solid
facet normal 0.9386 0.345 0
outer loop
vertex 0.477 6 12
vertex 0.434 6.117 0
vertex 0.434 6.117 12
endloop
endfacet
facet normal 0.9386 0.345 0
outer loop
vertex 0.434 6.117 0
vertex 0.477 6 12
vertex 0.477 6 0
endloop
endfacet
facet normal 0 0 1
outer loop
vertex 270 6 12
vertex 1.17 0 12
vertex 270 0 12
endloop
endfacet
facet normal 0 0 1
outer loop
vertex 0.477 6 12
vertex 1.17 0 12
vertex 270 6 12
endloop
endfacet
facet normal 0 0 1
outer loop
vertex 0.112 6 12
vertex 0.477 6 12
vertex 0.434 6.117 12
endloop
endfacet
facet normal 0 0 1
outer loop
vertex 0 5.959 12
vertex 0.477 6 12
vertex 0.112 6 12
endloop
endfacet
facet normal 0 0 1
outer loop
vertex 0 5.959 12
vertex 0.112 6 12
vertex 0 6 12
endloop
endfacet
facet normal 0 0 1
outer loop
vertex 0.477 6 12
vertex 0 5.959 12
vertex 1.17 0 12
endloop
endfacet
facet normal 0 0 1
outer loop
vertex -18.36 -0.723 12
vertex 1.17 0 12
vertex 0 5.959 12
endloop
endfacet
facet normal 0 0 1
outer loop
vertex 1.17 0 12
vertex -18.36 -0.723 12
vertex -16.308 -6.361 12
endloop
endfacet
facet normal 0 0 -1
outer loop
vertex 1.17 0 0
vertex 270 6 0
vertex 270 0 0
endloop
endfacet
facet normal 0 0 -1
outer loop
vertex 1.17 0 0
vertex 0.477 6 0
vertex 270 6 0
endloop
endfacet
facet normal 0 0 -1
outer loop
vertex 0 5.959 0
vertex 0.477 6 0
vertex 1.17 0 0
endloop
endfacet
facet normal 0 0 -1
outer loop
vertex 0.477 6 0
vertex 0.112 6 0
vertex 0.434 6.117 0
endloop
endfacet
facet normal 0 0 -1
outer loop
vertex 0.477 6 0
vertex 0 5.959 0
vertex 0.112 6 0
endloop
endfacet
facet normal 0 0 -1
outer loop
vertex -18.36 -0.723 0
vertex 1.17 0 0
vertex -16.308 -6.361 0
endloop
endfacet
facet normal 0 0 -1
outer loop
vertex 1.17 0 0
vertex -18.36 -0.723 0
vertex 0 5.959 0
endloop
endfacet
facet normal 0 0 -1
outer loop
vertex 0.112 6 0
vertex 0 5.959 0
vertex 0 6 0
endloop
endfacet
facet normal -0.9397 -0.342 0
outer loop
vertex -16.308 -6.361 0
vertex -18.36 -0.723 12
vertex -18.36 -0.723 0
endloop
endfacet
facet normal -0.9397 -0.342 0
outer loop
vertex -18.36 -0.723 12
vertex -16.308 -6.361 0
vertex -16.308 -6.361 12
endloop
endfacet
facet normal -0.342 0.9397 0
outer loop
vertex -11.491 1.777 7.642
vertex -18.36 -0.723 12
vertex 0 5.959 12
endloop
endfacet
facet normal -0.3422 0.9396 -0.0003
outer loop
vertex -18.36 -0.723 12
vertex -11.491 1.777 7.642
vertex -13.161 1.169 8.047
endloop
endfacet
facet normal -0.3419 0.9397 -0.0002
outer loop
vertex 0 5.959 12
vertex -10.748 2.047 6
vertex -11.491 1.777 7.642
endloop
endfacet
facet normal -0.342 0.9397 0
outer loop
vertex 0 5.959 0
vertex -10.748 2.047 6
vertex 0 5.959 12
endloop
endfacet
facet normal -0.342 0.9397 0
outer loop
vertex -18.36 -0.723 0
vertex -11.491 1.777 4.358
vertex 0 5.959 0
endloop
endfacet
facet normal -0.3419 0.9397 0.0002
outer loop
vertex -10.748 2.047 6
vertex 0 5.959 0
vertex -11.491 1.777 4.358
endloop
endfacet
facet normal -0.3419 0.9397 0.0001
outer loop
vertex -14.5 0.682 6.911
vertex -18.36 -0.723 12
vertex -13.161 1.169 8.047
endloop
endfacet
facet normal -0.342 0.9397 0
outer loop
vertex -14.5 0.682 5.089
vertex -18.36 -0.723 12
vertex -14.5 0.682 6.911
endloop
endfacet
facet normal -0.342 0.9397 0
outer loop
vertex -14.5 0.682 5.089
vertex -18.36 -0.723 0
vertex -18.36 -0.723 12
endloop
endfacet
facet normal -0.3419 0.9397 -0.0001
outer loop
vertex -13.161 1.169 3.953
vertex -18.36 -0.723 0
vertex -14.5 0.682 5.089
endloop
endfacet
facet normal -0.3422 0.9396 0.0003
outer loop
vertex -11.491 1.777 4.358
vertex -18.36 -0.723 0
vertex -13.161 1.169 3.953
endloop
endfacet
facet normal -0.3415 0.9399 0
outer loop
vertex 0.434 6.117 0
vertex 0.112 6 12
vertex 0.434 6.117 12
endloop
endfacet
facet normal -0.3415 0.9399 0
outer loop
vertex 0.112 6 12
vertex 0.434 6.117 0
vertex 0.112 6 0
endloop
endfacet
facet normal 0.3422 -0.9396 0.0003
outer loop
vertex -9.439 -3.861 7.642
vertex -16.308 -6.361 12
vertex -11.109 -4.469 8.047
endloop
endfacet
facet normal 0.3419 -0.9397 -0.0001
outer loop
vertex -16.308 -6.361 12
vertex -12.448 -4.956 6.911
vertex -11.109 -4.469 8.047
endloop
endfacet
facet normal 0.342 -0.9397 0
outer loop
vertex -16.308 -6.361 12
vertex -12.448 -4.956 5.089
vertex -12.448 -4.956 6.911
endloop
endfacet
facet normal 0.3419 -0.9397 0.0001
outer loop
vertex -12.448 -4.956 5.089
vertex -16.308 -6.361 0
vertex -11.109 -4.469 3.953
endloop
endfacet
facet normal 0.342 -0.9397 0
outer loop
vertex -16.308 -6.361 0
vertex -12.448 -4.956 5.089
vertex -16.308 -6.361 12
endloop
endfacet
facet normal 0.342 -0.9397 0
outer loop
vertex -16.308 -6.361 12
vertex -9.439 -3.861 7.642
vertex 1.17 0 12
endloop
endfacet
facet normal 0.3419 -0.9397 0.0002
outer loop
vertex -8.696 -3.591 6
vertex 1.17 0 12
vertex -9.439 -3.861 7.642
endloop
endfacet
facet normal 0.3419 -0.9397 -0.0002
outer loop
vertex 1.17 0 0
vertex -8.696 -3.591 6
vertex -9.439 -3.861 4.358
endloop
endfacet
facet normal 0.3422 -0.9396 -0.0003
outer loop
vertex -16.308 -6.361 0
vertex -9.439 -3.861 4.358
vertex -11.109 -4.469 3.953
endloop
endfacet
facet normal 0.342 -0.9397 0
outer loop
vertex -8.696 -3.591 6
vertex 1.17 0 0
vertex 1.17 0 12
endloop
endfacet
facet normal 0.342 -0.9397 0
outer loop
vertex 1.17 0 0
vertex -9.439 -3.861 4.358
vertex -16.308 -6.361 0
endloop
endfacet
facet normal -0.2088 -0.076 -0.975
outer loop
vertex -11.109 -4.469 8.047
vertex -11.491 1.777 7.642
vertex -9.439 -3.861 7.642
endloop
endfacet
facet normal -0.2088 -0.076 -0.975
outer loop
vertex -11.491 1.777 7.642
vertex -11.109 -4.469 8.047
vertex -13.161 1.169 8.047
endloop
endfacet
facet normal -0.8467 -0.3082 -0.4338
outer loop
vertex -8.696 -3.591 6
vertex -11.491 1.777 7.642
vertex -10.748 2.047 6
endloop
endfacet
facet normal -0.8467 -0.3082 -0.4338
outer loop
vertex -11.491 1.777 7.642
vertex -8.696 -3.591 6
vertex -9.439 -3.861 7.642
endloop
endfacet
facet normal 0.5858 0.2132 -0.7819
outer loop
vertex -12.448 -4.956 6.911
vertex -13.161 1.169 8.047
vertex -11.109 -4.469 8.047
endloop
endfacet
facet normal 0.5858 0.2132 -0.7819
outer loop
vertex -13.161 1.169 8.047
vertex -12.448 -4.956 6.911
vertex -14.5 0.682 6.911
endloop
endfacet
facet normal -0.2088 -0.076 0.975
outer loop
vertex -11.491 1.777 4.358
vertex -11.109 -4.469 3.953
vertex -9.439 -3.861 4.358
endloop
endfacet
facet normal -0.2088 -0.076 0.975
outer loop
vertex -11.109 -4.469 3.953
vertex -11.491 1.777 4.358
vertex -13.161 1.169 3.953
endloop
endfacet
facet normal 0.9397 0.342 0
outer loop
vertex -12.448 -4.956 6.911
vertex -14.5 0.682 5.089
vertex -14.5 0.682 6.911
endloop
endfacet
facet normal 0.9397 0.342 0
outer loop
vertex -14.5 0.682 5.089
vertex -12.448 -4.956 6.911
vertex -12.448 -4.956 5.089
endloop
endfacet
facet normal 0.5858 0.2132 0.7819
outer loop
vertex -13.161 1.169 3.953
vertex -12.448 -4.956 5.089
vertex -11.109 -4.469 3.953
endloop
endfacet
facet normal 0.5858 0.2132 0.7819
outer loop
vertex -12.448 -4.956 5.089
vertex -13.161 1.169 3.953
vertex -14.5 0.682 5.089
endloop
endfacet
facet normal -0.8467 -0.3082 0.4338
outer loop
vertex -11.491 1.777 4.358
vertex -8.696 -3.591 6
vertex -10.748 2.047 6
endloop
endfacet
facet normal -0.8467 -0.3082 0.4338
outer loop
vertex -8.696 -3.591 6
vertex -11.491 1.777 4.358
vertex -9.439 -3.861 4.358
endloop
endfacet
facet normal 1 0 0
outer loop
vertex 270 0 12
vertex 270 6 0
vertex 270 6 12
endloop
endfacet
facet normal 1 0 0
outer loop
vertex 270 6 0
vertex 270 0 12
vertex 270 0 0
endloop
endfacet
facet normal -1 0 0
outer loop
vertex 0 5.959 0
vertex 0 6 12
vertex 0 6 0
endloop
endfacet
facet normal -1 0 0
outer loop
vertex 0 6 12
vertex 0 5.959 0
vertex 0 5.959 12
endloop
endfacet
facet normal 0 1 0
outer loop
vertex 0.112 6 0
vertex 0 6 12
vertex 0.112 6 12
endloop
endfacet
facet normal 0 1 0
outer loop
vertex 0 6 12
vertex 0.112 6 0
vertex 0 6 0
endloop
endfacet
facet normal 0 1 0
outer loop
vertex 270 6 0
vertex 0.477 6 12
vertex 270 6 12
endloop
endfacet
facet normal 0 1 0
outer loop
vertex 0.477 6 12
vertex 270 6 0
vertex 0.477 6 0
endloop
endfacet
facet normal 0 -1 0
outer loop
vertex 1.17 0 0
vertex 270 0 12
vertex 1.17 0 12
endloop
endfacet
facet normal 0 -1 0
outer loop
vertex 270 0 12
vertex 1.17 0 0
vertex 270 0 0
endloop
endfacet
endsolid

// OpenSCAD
cube([270, 6, 12]);

rotate([0, 0, 20])
translate([-17.5, -0.4, 0])
difference() {
  cube([20, 6, 12]);
  color("red")
  translate([6, 0, 6])
  rotate([90, 0, 0])
  cylinder(20, d=4.2, center=true);
}
